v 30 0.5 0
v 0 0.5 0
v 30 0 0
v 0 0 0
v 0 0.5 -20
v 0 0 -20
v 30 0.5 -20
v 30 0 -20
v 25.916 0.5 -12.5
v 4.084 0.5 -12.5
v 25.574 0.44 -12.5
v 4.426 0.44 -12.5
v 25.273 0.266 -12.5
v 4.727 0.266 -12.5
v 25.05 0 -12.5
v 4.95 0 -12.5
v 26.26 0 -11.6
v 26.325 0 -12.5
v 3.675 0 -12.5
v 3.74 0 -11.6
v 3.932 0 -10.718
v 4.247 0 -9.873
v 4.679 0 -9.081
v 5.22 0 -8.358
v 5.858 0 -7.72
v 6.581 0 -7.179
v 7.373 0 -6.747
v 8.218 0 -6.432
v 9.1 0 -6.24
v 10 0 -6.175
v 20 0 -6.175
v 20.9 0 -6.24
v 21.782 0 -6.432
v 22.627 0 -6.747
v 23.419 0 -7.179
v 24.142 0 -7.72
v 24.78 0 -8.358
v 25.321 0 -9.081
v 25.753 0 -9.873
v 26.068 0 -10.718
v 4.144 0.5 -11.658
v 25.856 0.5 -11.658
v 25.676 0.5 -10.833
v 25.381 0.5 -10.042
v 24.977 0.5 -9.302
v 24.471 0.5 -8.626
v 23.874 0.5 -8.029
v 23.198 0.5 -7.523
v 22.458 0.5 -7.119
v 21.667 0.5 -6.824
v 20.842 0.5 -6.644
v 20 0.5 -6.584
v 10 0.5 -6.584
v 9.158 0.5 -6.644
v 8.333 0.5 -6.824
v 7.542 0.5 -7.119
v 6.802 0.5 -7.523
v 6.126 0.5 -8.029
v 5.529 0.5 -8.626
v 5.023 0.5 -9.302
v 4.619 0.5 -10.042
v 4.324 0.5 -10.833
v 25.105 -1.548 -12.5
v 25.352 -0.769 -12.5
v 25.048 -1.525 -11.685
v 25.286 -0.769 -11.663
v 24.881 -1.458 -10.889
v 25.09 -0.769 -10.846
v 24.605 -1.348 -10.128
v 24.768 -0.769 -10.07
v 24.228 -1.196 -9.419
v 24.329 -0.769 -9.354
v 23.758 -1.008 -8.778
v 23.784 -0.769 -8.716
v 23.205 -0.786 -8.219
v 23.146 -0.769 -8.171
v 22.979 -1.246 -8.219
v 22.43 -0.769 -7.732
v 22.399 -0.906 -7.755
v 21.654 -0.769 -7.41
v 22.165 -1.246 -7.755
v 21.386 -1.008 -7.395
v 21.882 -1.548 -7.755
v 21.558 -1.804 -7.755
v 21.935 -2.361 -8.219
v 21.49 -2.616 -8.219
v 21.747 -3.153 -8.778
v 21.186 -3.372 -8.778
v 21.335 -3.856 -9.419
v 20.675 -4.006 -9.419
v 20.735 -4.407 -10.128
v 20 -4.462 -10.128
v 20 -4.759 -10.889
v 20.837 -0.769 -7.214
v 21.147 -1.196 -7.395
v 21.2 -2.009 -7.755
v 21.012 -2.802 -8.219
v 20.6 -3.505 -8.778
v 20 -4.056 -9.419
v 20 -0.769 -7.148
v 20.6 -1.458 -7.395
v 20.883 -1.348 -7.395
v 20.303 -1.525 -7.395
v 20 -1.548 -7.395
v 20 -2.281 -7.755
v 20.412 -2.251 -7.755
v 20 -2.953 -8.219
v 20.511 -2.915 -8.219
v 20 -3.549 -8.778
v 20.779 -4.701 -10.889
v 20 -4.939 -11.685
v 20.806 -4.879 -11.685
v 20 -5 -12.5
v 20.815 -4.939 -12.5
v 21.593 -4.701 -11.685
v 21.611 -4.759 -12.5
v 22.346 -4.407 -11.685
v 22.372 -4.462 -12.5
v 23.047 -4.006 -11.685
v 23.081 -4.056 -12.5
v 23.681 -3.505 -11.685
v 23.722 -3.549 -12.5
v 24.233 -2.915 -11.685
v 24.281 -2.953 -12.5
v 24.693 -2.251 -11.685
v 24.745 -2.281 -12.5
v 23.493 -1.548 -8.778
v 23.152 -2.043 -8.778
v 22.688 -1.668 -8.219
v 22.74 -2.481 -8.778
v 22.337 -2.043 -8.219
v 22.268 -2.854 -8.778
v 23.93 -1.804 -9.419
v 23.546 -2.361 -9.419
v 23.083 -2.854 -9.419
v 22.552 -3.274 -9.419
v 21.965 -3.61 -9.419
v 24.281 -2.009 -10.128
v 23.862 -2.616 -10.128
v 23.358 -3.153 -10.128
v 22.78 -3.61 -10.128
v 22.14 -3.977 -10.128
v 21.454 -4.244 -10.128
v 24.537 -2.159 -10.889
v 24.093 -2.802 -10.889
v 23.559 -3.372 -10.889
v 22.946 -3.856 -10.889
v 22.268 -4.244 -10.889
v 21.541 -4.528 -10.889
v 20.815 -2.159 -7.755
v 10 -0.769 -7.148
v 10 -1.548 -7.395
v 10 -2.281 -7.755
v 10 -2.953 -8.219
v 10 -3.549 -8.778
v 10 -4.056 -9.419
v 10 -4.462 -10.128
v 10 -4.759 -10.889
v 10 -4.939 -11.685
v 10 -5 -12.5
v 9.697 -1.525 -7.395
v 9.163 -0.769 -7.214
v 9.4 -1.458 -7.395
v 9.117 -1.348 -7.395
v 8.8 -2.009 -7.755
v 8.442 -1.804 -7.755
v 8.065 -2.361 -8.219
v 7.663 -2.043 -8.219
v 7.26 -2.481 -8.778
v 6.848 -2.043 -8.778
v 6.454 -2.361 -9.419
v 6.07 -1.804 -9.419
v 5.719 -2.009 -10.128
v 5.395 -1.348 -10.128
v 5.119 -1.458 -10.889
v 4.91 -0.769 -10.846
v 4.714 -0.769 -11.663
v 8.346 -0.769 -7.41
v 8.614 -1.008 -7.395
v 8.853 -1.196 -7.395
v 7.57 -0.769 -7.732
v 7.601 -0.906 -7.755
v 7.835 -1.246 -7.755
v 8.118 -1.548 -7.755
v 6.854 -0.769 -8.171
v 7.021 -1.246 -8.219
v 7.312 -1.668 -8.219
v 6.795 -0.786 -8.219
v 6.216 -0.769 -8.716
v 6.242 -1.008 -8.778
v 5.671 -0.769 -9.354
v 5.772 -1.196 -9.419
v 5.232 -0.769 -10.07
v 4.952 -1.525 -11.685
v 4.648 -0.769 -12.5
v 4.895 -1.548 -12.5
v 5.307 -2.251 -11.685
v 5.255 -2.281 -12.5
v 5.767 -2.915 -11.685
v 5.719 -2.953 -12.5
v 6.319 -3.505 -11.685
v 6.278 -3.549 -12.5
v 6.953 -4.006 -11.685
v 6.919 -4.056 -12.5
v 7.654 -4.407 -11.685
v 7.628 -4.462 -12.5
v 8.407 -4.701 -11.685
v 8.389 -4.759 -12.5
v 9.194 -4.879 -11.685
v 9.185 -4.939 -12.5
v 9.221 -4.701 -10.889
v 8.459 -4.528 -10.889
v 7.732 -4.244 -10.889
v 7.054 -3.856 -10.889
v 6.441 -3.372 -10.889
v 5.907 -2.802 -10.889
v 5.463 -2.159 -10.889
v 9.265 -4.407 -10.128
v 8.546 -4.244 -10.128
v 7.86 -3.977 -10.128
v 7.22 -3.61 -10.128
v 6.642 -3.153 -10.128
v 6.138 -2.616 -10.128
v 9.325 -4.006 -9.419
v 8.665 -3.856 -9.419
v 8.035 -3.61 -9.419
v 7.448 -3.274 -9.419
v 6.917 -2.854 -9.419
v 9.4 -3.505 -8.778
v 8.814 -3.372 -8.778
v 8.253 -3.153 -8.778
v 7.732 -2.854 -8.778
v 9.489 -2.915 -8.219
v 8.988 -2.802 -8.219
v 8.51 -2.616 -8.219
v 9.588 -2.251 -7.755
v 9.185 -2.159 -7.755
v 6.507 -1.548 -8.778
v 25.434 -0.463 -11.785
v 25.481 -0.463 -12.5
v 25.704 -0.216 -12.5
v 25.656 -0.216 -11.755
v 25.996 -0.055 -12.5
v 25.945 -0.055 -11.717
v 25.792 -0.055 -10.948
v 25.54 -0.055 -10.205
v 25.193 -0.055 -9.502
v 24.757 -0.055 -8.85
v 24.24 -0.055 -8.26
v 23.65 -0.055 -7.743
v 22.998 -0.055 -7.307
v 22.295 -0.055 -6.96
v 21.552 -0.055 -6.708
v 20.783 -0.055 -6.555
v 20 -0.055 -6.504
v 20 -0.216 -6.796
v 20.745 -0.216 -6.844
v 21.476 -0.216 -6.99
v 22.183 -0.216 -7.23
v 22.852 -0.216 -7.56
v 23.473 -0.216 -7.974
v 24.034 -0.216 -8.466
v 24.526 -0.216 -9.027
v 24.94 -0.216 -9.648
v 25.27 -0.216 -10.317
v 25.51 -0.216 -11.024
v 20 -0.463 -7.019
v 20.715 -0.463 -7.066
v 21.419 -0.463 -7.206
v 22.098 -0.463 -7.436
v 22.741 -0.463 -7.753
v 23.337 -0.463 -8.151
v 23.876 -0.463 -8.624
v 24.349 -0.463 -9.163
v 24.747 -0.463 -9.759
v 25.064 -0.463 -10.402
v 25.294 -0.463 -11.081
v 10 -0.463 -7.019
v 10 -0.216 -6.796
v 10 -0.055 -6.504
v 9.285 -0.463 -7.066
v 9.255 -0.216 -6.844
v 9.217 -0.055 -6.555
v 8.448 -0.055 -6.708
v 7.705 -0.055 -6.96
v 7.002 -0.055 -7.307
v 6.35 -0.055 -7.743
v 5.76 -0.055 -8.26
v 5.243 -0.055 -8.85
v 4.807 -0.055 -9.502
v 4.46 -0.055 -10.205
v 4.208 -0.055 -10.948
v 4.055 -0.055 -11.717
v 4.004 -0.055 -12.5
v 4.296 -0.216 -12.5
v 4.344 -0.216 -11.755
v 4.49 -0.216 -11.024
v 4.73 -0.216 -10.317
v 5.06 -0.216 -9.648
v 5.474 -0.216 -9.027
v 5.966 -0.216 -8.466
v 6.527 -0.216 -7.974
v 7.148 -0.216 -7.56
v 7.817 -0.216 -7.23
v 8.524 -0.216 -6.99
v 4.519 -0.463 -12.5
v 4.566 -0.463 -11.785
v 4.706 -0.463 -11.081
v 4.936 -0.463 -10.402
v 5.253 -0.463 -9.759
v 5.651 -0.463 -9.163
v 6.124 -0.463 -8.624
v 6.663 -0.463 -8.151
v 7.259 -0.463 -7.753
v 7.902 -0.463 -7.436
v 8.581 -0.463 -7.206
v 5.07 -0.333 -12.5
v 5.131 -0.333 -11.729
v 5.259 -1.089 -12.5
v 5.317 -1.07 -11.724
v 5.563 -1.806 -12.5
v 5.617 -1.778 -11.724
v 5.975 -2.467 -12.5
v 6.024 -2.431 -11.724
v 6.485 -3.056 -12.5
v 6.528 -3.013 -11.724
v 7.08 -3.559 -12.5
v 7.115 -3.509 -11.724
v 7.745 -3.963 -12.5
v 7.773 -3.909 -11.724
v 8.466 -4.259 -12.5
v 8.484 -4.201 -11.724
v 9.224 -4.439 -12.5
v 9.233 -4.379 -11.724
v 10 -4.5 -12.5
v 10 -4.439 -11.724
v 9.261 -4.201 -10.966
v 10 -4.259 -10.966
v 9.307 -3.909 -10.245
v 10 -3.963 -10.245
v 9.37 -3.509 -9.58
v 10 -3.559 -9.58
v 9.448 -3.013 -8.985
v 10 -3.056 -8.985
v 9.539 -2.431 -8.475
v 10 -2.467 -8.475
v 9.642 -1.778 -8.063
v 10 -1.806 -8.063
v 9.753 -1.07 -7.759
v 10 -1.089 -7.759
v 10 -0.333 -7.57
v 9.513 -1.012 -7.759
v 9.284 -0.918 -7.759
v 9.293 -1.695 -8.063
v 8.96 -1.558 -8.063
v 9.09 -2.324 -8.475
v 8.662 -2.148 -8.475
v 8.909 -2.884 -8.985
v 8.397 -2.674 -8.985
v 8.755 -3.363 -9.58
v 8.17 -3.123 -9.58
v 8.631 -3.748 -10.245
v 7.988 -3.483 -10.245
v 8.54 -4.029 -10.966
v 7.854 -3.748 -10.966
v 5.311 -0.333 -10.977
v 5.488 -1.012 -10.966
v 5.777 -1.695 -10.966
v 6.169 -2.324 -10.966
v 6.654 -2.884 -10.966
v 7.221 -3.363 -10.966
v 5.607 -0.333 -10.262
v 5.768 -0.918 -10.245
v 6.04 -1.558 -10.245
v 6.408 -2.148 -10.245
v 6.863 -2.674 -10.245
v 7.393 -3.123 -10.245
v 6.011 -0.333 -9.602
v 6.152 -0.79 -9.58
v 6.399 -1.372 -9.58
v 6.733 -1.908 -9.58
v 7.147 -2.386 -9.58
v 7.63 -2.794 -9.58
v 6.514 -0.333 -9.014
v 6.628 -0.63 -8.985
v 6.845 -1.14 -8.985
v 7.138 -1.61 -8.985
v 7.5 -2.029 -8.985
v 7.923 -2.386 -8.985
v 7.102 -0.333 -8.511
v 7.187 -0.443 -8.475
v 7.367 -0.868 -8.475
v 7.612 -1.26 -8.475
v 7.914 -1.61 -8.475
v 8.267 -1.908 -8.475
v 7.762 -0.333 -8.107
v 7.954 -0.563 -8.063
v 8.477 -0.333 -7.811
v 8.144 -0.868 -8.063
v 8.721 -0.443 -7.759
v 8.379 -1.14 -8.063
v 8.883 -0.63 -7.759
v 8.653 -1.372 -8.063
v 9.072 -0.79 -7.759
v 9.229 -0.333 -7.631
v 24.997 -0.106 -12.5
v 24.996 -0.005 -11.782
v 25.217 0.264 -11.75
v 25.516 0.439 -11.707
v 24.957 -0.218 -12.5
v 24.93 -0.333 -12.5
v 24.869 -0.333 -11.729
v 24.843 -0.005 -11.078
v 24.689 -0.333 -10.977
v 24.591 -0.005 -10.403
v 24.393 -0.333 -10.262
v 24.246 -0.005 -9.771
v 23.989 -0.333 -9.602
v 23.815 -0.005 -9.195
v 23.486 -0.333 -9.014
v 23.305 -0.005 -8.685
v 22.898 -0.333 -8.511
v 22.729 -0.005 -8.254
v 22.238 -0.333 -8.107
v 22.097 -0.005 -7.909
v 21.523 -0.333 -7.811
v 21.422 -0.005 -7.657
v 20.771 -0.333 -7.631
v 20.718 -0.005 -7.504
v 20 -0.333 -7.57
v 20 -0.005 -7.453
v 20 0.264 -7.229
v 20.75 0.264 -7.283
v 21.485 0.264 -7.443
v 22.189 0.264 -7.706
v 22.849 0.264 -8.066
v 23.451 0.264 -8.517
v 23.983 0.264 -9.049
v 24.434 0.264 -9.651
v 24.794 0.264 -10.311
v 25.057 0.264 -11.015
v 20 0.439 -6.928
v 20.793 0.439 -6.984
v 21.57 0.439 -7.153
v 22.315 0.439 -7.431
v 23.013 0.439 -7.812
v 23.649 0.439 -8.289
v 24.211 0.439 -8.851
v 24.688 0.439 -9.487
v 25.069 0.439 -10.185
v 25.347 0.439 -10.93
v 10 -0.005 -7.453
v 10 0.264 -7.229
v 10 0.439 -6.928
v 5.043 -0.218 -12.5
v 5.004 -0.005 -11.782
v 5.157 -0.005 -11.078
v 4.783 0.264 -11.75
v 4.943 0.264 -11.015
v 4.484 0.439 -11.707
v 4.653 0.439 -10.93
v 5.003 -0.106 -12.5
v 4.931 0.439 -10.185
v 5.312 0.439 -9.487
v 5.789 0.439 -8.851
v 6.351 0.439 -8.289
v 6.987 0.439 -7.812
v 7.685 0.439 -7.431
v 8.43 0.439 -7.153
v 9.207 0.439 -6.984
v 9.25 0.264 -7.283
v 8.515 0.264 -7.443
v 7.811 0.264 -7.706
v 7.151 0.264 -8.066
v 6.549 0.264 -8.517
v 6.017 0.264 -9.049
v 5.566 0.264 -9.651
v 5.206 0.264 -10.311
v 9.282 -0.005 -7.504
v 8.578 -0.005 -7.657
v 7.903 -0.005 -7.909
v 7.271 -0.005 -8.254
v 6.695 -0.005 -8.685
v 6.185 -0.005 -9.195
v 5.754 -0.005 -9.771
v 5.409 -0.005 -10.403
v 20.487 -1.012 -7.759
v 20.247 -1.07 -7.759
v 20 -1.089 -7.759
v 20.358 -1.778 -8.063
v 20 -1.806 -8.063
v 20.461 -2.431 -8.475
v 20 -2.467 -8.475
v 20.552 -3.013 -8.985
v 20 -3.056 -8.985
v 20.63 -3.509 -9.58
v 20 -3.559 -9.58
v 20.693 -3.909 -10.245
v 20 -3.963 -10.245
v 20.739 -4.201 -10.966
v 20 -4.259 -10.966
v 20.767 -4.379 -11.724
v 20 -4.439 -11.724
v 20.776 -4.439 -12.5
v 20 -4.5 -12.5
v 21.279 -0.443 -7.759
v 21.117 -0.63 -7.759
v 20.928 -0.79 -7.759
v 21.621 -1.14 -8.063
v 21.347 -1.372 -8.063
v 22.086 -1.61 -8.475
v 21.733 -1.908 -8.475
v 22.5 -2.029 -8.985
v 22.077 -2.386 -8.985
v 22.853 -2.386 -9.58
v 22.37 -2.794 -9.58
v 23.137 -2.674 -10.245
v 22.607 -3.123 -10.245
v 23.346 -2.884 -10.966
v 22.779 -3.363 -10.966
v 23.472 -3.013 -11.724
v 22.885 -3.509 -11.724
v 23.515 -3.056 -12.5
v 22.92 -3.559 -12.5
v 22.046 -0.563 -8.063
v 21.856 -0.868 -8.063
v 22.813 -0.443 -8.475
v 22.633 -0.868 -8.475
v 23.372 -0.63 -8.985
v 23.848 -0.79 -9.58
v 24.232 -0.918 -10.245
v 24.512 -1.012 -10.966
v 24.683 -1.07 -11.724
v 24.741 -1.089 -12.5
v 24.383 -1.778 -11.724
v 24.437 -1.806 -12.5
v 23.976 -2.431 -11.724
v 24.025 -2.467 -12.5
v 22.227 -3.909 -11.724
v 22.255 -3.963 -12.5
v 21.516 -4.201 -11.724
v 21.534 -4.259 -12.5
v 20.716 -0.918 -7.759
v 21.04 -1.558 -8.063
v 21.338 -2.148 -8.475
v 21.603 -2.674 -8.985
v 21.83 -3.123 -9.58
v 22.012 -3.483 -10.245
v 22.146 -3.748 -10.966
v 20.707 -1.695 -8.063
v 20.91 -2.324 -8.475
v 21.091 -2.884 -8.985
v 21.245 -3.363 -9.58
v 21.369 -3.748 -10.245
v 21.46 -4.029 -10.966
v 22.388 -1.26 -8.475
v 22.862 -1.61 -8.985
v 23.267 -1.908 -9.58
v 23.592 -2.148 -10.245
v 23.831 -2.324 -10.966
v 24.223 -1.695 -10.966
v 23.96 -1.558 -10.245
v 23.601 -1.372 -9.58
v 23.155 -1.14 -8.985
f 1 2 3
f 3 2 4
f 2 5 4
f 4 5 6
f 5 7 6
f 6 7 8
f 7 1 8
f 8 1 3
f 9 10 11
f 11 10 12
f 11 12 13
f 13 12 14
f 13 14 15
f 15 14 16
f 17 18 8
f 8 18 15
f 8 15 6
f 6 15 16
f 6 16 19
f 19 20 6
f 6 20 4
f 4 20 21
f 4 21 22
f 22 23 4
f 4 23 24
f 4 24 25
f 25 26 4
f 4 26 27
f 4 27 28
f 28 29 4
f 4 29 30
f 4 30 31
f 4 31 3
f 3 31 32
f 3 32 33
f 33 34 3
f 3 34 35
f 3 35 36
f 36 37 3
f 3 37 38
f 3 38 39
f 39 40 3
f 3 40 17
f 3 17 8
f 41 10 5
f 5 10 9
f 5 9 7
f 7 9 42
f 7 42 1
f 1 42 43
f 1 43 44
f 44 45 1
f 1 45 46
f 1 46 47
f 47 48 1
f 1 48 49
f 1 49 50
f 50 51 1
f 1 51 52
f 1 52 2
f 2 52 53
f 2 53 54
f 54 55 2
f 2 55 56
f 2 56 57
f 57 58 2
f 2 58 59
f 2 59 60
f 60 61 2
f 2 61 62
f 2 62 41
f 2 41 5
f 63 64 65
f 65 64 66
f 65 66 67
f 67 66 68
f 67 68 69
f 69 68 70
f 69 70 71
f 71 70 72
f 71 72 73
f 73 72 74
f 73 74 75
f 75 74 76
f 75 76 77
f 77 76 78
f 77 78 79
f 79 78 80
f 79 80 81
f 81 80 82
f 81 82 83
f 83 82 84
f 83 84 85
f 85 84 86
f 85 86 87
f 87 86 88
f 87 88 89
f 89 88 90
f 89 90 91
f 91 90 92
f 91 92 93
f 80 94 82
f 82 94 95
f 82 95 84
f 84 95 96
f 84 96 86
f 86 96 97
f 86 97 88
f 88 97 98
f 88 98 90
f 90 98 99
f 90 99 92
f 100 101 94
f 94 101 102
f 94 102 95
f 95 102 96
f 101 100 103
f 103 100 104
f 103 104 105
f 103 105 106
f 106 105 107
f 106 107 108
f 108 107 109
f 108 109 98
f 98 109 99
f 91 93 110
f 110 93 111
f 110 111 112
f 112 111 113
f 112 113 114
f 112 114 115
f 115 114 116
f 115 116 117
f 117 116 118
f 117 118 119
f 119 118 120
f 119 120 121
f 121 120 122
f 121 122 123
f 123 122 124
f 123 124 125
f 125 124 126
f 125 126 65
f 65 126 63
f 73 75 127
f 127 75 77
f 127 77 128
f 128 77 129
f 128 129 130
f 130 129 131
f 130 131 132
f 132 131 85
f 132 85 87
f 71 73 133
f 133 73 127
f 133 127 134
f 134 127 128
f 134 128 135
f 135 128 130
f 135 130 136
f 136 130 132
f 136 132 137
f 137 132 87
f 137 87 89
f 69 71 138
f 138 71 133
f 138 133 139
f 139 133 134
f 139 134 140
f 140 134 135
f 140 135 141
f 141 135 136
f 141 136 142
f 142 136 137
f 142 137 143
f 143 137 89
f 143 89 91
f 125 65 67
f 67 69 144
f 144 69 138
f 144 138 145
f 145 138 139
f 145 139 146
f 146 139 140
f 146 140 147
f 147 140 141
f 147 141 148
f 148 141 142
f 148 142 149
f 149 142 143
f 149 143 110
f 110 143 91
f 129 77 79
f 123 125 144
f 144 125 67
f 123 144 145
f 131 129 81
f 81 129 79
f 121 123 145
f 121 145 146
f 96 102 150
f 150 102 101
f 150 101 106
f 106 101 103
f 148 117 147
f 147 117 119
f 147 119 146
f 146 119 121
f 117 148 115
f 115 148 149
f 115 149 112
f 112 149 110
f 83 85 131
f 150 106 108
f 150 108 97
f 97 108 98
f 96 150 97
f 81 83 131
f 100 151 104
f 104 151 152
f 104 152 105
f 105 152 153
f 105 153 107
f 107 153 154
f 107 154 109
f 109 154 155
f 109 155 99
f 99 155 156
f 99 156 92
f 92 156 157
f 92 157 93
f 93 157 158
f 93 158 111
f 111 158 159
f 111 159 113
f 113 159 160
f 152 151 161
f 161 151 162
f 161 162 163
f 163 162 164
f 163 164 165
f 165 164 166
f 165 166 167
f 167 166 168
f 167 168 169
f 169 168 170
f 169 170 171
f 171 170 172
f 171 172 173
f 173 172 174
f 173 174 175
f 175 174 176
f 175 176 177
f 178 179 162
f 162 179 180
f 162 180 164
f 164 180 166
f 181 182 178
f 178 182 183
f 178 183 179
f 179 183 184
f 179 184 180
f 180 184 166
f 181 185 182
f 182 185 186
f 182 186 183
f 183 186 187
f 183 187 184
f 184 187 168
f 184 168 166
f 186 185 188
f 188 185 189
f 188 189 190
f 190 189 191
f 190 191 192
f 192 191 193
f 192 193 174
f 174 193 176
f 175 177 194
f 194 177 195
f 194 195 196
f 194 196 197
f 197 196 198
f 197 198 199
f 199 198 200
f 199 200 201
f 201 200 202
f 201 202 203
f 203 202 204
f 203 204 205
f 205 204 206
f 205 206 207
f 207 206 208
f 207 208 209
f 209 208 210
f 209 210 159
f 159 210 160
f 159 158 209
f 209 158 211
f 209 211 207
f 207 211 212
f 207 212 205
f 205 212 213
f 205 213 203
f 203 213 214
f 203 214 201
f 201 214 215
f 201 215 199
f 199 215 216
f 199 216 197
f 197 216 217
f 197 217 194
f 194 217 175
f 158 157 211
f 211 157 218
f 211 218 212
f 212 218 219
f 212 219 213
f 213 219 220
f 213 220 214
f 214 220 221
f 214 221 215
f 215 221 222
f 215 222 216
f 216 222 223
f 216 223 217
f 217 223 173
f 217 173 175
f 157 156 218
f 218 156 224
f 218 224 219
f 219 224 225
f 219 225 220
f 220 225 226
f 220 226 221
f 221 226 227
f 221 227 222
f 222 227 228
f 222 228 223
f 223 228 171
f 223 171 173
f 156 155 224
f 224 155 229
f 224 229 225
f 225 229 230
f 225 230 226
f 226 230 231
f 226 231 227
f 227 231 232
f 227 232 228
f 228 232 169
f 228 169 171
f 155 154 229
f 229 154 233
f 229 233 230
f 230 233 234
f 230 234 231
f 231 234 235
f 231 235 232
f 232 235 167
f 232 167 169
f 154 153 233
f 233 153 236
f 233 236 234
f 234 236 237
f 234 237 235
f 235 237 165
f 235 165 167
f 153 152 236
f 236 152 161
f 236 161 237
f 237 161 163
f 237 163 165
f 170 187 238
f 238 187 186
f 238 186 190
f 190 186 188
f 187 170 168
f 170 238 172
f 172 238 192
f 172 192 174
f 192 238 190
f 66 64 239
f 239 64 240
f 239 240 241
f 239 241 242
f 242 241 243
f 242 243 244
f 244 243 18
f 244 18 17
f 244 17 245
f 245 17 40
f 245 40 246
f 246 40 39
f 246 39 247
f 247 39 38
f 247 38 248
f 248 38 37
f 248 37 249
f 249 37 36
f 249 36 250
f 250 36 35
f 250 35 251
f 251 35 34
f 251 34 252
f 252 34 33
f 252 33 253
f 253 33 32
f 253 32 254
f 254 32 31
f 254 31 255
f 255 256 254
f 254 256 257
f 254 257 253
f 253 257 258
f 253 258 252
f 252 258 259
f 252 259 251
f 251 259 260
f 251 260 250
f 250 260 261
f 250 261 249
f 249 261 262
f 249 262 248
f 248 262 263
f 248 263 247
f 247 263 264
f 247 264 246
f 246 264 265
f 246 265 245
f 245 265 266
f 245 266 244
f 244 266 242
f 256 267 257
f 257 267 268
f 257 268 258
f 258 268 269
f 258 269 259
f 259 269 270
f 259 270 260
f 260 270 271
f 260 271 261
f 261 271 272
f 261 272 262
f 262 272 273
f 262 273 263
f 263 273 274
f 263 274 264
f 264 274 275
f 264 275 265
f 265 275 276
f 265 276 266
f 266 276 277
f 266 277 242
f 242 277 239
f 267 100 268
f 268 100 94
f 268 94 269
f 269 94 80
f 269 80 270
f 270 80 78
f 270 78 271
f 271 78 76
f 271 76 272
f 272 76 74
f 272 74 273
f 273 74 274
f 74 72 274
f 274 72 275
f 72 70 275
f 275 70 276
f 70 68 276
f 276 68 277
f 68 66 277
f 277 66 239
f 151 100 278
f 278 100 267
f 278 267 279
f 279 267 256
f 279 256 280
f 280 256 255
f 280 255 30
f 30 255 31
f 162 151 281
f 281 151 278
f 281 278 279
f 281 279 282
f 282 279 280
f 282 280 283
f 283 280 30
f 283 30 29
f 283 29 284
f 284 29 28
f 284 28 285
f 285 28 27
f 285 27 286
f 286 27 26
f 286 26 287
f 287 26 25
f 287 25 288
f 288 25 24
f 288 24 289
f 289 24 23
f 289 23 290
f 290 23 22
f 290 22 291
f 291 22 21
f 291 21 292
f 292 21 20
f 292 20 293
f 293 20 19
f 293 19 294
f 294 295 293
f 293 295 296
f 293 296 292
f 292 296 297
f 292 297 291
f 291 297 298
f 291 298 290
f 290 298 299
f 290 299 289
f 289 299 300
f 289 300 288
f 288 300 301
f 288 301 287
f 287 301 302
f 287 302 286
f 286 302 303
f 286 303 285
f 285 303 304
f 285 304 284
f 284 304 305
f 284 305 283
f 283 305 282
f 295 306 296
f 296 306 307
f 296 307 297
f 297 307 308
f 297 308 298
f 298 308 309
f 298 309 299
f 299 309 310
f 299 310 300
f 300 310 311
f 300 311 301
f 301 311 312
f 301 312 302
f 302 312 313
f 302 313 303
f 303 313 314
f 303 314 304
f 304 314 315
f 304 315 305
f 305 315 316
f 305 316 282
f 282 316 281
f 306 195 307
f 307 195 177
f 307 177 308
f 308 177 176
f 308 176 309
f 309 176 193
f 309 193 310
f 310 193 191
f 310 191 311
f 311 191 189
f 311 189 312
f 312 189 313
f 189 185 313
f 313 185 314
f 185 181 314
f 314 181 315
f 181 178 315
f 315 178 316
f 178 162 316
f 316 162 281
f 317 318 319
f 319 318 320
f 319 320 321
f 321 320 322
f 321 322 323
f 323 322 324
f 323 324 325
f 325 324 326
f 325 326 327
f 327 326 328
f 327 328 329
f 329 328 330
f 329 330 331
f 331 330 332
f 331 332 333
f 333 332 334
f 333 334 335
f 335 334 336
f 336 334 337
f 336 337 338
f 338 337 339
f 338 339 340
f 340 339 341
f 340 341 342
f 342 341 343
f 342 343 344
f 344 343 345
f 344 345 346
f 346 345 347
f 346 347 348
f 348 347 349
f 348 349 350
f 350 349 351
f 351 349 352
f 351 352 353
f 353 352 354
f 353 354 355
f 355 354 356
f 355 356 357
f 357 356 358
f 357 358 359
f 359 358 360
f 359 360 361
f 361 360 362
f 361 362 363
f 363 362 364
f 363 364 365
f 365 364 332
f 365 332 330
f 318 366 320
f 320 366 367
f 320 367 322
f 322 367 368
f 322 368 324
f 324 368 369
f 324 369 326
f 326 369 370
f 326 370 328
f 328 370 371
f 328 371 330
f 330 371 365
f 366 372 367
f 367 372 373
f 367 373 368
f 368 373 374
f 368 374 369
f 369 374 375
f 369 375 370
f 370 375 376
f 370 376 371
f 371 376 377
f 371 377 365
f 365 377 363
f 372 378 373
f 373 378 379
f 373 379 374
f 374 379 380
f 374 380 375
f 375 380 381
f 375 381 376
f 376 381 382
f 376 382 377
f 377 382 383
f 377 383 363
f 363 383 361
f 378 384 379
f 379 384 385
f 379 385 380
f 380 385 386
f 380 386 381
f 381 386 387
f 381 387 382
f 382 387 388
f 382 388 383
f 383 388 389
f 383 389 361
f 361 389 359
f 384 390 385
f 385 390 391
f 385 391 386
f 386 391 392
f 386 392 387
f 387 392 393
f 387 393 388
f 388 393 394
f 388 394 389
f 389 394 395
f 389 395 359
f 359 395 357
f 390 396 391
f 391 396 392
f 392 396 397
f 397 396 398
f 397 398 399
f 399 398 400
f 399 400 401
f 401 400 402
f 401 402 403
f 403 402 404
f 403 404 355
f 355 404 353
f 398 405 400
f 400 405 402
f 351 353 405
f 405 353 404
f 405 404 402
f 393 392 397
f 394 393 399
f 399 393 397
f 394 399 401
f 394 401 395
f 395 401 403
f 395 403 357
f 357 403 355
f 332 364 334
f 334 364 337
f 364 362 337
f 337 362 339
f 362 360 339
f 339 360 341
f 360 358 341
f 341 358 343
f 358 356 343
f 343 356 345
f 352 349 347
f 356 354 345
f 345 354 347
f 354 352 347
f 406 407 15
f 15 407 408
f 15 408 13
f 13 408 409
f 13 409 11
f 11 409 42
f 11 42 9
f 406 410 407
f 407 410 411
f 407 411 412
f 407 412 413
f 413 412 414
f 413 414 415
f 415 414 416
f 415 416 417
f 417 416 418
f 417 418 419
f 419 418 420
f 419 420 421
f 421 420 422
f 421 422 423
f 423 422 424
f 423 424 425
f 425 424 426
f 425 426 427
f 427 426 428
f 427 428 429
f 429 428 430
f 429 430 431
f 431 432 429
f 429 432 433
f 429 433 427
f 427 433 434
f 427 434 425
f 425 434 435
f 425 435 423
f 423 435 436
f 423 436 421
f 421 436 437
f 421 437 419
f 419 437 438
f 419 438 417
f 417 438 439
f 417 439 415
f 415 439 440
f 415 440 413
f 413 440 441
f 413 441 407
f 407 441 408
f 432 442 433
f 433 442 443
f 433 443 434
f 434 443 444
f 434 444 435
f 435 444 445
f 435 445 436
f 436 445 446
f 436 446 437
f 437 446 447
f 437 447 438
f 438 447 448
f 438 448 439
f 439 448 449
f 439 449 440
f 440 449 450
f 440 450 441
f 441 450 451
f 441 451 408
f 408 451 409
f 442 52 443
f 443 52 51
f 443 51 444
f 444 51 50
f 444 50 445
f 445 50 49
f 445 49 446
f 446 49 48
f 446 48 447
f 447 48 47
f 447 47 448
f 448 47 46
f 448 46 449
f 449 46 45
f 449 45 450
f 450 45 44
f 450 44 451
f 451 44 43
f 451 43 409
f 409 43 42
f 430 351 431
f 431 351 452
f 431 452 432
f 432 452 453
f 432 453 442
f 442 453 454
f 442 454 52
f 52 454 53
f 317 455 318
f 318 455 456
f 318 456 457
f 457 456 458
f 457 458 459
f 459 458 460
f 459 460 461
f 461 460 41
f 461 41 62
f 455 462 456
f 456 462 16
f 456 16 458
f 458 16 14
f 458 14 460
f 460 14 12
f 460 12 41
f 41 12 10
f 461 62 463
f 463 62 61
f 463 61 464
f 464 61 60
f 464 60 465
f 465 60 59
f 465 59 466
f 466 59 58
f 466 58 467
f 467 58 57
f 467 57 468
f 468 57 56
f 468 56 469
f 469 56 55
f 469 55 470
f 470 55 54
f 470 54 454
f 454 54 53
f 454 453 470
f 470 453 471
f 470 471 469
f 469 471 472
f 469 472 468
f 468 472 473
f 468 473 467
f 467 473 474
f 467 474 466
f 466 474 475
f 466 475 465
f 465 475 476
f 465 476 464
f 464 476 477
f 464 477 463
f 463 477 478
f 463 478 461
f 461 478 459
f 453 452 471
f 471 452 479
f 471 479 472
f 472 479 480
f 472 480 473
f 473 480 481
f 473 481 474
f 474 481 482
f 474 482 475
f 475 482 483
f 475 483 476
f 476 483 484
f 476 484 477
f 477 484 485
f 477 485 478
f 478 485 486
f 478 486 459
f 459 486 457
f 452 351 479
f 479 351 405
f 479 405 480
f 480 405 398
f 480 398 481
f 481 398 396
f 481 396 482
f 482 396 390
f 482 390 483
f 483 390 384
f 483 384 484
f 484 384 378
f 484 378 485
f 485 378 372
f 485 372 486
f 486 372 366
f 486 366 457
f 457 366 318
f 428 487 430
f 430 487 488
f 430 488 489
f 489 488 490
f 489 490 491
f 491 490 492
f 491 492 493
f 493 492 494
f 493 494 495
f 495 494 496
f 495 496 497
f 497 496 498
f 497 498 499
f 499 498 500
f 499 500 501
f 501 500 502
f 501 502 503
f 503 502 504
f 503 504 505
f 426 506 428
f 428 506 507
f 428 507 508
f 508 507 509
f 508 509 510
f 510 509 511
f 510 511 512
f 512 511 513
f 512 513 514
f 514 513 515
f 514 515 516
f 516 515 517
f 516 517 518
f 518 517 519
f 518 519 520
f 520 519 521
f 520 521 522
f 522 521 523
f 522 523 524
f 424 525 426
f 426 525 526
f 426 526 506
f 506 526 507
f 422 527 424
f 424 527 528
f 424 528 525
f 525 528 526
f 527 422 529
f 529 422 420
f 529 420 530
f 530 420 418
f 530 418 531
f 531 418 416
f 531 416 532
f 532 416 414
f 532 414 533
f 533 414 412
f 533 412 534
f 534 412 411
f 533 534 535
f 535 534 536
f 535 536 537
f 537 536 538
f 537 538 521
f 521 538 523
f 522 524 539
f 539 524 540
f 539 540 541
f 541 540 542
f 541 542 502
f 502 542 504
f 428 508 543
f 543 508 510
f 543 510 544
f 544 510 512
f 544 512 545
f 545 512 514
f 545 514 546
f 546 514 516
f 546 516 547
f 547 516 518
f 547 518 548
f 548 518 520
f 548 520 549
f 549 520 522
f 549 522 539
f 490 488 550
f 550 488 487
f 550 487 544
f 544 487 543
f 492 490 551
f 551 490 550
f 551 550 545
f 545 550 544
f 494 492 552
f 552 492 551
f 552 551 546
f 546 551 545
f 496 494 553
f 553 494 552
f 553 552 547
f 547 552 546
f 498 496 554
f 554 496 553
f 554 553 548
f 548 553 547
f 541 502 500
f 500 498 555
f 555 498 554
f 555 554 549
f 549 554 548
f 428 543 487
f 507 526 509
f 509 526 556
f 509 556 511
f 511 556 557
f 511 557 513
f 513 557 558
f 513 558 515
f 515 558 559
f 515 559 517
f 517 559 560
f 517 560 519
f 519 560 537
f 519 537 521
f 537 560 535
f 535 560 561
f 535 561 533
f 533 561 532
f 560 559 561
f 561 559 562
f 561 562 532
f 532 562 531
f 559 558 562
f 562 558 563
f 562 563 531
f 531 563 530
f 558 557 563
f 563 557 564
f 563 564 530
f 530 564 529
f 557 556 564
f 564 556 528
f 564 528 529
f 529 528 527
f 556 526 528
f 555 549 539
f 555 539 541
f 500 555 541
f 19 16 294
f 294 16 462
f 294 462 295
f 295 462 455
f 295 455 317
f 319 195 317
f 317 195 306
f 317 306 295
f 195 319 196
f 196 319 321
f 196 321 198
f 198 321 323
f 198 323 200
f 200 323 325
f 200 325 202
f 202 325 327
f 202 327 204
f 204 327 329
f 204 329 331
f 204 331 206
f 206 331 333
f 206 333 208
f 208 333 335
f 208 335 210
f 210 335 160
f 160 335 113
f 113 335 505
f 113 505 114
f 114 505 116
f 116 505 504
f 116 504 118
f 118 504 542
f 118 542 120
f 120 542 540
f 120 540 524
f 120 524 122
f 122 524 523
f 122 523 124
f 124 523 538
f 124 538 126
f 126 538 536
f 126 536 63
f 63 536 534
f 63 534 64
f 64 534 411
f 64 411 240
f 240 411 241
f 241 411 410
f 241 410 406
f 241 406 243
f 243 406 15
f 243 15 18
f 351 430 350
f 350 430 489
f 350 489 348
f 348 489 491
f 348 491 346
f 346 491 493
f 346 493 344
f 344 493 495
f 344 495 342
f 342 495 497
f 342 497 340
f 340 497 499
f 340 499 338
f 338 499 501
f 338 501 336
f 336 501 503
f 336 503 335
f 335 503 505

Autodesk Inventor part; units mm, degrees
ref_plane "YZ Plane" through (0, 0, 0) normal (1, 0, 0) x (0, 1, 0)
ref_plane "XZ Plane" through (0, 0, 0) normal (0, 1, 0) x (-1, 0, 0)
sketch "Sketch1" plane through (0, 0, 0) normal (0, 1, 0) x (-1, 0, 0)
  line L0 (0, 0) -> (-30, 0)
  line L1 (-30, 0) -> (-30, -20)
  line L2 (-30, -20) -> (0, -20)
  line L3 (0, -20) -> (0, 0)
  dimension "d0" = 30
  dimension "d1" = 20
extrude "Plate1" add sketch "Sketch1" along normal blind 0.5
sketch "Sketch2" plane through (0, 0.5, 0) normal (0, 1, 0) x (1, 0, 0)
  arc A0 (5, 12.5) -> (10, 7.5) centre (10, 12.5) ccw
  line L0 (10, 7.5) -> (20, 7.5)
  arc A1 (20, 7.5) -> (25, 12.5) centre (20, 12.5) ccw
  line L1 (5, 12.5) -> (25, 12.5)
  line L2 (15, 12.5) -> (15, 7.5) construction
  line L3 (30, 0) -> (0, 0) construction
  line L4 (0, 0) -> (0, 20) construction
  point P0 (15, 10)
  dimension "d3" = 20
  dimension "d4" = 5
  dimension "d5" = 10
  dimension "d6" = 15
extrude "Extrusion1" cut sketch "Sketch2" against normal blind 0.5
ref_plane "Work Plane1" through (10, 0.5, -12.5) normal (0, -1, 0) x (1, 0, 0)
sketch "Sketch3" plane through (10, 0.5, -12.5) normal (0, -1, 0) x (1, 0, 0)
  arc A0 (0, 5) -> (-5, 0) centre (0, 0) ccw projected
  line L0 (-5, 0) -> (15, 0) projected
  line L1 (10, 5) -> (0, 5) projected
  arc A1 (15, 0) -> (10, 5) centre (10, 0) ccw projected
  line L2 (5, 0) -> (5, 5) construction
  line L3 (15, 0) -> (-5, 0) projected
  line L4 (-5, 0) -> (-5.5, 0)
  arc A2 (0, 5.5) -> (-5.5, 0) centre (0, 0) ccw
  line L5 (0, 5.5) -> (10, 5.5)
  arc A3 (15.5, 0) -> (10, 5.5) centre (10, 0) ccw
  line L6 (15.5, 0) -> (15, 0)
  point P0 (-10, 12.5)
  dimension "d9" = 0.5
revolve "Revolution1" add sketch "Sketch3" angle 90 about axis through (5, 0.5, -12.5) along (1, 0, 0) contours A0 L4 A2 L5 A3 L6 A1 L1
fillet "Fillet1" radius 1 6 edges at (6.4645, 0.5, -8.9645) (23.5355, 0.5, -8.9645) (15, 0.5, -7.5) (23.873, 0, -8.627) (6.127, 0, -8.627) (15, 0, -7.0228)
equation "\"d7\" = Thickness"
equation "\"d9\" = Thickness"
equation "\"d2\" = Thickness"
equation "\"BendRadius\" = Thickness"
equation "\"BendReliefWidth\" = Thickness"
equation "\"BendReliefDepth\" = 0.5 * Thickness"
equation "\"CornerReliefSize\" = 4 * Thickness"
equation "\"MinimumRemnant\" = 2 * Thickness"
equation "\"TransitionRadius\" = BendRadius"
equation "\"JacobiRadiusSize\" = BendRadius"
equation "\"GapSize\" = Thickness"
equation "\"Thickness\" = 0.5"
properties part number "CE-4.1.2"
